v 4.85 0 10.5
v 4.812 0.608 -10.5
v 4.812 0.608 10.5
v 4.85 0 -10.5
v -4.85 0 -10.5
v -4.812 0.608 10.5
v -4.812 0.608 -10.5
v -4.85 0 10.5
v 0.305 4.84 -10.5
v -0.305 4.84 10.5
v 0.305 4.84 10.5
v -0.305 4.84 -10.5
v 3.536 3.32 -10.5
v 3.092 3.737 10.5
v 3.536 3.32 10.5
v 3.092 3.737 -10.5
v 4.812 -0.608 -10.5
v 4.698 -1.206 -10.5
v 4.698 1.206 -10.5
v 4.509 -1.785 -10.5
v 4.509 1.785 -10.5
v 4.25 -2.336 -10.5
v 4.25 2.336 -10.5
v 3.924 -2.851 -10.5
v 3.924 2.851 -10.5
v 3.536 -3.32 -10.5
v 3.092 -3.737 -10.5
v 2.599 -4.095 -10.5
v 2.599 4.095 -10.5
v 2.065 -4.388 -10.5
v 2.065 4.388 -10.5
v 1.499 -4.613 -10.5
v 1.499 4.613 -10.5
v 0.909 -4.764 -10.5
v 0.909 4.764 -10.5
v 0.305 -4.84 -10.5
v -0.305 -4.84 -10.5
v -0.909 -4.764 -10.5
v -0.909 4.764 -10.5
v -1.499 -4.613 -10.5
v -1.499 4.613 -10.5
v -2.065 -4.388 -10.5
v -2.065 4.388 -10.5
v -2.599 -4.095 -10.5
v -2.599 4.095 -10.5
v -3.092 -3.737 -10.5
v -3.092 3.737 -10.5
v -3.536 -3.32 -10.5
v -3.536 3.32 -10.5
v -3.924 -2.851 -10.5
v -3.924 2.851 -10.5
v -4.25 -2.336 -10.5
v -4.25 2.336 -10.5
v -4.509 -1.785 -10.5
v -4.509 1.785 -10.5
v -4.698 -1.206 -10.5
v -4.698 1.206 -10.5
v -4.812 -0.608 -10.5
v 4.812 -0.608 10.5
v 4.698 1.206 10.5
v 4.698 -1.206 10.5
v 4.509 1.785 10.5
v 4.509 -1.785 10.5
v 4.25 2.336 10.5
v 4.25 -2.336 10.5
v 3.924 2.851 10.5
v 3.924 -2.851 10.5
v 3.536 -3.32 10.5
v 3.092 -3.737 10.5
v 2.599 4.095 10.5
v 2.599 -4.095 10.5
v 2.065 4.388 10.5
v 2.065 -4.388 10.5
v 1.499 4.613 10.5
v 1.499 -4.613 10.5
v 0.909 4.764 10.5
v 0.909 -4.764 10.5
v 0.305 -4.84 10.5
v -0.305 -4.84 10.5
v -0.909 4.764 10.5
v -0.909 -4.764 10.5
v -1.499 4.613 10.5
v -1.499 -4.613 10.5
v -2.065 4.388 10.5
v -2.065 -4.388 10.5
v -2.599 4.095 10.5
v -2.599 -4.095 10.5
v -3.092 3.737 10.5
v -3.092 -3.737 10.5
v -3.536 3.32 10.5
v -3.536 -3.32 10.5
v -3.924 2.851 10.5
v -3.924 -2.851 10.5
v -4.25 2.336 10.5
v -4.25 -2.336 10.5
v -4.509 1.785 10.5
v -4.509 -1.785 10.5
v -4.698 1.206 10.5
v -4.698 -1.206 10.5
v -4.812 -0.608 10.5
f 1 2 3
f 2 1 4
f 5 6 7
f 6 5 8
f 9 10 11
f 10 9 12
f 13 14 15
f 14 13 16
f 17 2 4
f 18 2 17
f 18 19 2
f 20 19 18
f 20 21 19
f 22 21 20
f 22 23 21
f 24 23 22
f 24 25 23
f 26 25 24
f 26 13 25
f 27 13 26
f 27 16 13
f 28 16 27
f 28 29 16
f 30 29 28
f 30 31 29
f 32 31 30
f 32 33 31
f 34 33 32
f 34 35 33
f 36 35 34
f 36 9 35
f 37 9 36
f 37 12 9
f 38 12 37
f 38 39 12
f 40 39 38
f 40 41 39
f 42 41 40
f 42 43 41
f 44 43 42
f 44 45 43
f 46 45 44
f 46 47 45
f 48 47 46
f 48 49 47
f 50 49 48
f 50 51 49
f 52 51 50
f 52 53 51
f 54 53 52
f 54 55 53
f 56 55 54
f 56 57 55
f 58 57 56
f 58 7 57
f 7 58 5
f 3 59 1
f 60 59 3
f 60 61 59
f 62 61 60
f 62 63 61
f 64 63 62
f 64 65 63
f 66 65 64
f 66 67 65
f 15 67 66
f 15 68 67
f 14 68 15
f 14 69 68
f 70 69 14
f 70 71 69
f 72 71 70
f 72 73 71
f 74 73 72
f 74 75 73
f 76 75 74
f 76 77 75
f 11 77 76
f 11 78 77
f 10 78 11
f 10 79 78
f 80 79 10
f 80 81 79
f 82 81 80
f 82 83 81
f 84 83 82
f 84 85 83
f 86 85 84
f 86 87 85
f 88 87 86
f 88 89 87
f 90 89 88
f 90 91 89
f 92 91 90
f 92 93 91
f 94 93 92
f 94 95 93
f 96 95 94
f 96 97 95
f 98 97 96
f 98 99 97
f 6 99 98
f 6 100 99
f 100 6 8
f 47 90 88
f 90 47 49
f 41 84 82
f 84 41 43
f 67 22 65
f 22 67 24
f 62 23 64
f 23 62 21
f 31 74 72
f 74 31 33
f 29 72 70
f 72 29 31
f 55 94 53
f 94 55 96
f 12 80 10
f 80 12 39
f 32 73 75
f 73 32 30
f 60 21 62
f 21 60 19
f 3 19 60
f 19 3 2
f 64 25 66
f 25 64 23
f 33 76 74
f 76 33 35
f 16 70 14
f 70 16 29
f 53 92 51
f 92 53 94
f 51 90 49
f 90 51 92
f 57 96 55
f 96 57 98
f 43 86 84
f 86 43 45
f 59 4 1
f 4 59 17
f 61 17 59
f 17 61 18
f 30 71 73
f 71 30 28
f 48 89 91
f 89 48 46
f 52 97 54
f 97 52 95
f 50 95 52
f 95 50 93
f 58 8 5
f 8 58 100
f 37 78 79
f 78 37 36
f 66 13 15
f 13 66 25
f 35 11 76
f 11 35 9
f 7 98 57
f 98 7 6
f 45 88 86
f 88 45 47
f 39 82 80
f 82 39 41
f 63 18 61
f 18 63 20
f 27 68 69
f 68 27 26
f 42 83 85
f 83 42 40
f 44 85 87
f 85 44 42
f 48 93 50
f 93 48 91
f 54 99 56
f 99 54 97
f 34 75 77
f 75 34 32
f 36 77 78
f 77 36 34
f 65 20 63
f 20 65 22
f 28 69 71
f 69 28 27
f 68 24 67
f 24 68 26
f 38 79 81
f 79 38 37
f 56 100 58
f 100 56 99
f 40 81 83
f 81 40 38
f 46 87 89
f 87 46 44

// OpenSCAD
$fn = 50;


difference() {
	union() {
		translate(v = [0, 0, -10.5000000000]) {
			cylinder(h = 21, r = 4.8500000000);
		}
	}
	union() {
		translate(v = [0, 0, -100.0000000000]) {
			cylinder(h = 200, r = 0);
		}
	}
}
